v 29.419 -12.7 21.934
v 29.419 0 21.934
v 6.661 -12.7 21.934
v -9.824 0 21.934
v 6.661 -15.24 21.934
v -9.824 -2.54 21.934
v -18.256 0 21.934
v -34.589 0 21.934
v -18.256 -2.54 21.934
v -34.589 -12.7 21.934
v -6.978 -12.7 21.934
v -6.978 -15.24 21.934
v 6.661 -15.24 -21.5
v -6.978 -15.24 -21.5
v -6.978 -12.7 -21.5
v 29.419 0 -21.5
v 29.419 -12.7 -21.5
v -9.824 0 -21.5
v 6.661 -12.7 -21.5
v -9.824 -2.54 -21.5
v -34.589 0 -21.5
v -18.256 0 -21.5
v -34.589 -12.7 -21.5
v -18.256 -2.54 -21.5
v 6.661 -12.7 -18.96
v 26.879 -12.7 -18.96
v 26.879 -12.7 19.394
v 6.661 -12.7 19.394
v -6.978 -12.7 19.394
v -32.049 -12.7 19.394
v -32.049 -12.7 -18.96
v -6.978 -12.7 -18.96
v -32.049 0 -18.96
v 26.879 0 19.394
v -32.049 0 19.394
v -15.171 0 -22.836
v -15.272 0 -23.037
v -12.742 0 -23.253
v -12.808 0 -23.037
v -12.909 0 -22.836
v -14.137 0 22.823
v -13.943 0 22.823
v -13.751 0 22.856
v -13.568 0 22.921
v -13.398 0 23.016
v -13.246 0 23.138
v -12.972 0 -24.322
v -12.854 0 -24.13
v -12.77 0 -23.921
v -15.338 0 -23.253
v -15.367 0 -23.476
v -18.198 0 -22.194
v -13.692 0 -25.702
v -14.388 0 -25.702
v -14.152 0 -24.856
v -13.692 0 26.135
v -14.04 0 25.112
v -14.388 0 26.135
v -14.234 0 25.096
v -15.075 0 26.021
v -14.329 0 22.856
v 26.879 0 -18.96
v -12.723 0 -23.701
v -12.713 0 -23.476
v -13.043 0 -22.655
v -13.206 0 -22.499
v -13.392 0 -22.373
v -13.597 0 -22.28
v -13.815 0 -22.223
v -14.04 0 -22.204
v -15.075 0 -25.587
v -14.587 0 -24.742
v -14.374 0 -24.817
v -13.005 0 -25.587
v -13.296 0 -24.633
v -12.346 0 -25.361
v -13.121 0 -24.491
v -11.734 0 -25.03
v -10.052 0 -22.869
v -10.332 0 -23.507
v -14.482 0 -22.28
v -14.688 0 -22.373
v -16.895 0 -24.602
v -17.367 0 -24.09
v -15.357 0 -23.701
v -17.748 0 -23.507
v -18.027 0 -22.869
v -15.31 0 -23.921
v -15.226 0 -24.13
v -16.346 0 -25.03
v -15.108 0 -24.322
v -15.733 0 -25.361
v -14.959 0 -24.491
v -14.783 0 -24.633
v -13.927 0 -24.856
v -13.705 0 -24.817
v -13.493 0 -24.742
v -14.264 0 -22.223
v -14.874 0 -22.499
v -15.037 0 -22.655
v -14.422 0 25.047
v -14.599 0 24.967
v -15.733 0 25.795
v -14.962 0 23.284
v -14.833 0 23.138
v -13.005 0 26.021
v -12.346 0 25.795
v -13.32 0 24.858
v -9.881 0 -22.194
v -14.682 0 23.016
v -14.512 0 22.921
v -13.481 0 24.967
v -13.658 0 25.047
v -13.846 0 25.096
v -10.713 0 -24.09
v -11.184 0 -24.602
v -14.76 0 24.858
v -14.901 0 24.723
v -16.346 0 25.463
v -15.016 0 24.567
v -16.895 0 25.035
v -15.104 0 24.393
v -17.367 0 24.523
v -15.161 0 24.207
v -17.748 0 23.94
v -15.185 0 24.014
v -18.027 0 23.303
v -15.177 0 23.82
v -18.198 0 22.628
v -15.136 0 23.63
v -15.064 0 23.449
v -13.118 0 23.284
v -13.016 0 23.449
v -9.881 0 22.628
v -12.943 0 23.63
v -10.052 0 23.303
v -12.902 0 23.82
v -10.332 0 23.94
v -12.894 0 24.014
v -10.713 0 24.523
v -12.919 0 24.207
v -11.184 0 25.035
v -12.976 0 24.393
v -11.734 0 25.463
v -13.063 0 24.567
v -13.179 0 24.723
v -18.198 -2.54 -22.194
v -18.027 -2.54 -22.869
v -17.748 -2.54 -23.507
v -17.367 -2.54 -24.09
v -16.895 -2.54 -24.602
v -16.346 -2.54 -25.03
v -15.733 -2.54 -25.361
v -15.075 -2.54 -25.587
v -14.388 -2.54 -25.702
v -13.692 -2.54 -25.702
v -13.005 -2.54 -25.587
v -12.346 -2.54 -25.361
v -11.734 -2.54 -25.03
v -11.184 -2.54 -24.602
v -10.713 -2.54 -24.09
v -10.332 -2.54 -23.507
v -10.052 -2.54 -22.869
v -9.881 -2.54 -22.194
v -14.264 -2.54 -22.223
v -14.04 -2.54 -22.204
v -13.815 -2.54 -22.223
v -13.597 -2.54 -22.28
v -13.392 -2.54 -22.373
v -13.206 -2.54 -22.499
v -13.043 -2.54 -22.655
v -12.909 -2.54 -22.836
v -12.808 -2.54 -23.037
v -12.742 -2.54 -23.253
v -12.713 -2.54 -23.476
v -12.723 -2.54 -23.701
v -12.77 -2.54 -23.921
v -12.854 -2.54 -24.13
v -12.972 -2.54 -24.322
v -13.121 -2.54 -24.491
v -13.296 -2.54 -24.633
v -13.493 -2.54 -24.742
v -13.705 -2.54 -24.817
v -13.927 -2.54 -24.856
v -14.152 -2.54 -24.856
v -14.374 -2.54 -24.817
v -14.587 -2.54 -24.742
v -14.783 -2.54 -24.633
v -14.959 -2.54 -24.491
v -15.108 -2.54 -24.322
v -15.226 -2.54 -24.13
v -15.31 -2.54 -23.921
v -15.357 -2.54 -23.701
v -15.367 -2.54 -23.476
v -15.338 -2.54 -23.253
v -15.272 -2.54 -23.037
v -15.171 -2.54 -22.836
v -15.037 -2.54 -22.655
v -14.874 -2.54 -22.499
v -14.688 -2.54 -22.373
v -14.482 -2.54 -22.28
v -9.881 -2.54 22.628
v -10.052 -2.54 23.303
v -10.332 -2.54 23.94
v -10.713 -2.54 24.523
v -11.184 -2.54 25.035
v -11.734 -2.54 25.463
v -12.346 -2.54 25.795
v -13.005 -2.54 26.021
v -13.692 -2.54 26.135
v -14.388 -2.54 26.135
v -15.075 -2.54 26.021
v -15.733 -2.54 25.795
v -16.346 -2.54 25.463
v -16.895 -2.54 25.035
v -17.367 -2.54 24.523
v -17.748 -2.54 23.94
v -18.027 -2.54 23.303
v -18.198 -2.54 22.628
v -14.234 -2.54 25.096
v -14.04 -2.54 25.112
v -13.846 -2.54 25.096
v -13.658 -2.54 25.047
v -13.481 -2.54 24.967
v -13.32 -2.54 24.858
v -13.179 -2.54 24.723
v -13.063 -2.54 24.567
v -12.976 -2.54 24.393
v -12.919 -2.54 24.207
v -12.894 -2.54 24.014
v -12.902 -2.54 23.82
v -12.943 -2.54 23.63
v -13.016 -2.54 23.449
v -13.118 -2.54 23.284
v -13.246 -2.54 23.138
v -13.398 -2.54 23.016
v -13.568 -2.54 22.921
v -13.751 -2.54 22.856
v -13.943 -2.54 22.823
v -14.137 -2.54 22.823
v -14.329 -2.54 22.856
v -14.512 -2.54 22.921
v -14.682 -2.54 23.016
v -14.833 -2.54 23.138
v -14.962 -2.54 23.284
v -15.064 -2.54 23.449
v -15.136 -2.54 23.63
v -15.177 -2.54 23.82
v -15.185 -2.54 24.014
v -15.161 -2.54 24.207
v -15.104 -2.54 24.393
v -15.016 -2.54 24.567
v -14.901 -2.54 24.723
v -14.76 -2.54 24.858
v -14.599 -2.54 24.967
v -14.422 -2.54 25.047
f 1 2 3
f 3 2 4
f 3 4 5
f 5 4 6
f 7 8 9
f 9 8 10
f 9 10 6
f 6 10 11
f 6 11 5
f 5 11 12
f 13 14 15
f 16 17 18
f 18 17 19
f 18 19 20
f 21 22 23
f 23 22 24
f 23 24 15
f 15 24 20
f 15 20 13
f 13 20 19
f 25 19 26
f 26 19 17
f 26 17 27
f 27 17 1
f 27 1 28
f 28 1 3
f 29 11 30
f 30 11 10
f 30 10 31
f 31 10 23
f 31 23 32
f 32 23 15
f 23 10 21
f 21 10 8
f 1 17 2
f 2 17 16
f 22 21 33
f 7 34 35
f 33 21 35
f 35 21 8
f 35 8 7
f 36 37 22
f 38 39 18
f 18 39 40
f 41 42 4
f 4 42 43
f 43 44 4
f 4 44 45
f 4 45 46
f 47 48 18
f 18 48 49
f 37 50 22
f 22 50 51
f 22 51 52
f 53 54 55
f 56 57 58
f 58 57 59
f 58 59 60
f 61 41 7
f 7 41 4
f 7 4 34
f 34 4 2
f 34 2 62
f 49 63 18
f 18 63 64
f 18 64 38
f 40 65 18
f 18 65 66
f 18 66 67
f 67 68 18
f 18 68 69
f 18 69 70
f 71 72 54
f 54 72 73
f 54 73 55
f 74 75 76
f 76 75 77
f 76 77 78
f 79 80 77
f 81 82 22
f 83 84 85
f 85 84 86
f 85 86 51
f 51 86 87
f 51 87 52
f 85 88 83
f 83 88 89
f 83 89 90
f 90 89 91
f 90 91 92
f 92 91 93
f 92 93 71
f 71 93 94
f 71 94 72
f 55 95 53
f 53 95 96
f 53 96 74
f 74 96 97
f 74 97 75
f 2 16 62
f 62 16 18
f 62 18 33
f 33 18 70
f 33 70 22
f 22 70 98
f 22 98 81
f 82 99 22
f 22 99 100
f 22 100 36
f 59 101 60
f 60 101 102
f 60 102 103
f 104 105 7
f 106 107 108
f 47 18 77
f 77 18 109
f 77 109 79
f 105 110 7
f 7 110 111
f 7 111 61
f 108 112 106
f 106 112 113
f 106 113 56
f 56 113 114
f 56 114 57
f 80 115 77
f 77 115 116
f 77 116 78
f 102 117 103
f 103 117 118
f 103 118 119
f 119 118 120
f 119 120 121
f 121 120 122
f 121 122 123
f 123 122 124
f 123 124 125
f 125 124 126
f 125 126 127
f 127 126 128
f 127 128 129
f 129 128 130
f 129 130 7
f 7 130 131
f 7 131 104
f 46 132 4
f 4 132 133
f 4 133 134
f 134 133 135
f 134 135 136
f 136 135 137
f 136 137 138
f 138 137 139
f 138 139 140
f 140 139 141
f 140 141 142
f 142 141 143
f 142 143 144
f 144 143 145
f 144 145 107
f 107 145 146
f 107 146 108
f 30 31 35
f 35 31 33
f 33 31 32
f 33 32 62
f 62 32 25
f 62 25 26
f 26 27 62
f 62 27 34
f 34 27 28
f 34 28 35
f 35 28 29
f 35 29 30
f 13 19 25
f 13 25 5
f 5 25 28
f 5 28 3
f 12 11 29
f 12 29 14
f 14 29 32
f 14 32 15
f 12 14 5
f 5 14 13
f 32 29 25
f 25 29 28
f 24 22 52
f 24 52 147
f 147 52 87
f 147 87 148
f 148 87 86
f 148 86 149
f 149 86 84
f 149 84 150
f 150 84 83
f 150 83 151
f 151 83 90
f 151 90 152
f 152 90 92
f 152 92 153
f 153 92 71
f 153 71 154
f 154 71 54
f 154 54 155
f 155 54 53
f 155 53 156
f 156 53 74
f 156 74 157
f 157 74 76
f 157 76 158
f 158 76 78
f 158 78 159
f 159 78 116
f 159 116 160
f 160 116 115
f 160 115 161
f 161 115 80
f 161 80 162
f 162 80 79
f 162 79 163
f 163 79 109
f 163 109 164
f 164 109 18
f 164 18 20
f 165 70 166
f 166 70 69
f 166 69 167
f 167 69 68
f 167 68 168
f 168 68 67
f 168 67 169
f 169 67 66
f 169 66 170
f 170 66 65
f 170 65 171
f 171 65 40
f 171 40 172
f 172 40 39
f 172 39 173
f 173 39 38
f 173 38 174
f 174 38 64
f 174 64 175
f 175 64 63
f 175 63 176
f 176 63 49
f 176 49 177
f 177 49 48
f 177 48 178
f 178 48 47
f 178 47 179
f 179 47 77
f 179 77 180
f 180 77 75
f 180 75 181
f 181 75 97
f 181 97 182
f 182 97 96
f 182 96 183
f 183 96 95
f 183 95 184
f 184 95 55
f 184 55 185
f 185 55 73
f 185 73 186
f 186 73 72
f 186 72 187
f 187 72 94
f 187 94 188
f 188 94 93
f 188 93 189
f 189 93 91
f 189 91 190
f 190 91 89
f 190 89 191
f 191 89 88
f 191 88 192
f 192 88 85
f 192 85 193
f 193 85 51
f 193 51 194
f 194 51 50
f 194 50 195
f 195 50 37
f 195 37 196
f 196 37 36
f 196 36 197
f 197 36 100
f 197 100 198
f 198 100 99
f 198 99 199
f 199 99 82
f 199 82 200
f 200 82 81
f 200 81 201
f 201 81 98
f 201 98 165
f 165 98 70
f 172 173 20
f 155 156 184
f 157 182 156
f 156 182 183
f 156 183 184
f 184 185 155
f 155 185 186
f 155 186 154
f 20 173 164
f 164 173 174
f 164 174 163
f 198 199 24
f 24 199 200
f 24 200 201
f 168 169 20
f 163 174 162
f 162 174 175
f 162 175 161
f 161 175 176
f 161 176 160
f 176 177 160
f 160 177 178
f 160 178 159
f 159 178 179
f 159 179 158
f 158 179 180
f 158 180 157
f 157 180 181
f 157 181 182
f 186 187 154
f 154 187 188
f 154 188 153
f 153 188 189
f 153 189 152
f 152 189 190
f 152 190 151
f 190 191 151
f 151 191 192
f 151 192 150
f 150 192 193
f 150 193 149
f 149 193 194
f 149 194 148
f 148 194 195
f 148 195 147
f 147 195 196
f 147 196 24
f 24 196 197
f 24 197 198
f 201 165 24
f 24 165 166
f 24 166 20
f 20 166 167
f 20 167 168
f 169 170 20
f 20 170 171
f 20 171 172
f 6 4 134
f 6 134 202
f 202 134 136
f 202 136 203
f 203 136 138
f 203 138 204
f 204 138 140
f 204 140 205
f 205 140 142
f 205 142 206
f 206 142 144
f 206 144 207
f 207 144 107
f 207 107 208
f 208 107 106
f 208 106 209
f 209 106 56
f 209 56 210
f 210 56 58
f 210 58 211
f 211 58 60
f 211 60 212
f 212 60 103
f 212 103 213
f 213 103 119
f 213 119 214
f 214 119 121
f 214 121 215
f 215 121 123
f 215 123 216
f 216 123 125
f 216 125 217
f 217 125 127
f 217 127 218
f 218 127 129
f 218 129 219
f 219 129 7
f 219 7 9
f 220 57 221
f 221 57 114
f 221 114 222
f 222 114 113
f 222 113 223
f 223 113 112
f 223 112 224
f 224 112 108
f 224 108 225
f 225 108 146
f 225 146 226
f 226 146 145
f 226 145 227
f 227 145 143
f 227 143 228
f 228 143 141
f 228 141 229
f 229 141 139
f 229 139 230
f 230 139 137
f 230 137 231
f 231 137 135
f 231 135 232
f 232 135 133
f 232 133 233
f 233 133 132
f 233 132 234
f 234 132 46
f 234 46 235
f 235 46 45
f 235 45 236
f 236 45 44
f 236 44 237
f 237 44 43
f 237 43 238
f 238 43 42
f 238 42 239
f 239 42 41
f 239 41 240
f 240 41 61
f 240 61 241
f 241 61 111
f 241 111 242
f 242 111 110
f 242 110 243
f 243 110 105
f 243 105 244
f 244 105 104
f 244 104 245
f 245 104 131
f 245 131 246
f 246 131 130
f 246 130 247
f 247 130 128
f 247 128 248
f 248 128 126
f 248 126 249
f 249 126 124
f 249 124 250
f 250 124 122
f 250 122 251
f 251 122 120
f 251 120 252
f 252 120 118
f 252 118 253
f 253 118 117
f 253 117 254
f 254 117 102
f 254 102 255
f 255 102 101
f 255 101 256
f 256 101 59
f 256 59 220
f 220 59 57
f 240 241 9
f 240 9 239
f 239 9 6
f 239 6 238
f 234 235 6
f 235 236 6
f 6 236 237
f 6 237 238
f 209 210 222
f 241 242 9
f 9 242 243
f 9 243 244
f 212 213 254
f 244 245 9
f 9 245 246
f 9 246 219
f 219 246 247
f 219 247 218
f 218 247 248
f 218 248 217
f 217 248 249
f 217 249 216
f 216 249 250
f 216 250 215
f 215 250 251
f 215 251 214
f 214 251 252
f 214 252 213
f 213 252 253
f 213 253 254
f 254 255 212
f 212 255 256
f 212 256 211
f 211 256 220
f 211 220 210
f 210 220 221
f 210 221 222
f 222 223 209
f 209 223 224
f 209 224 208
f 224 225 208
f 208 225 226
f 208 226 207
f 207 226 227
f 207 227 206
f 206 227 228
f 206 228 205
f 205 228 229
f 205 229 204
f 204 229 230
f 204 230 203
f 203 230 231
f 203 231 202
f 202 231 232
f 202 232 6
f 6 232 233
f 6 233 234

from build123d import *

# Parameters (mm, degrees)
SKETCH1_W           = 64.008
SKETCH1_H           = 43.434
SKETCH1_W_2         = 58.928
SKETCH1_H_2         = 38.354
BOSS_EXTRUDE1_DEPTH = 12.7
SKETCH2_W           = 13.638305883
SKETCH2_H           = 43.434
BOSS_EXTRUDE2_DEPTH = 2.54
SKETCH3_R           = 1.327962253
SKETCH3_R_2         = 1.146659907
BOSS_EXTRUDE3_DEPTH = 2.54


with BuildPart() as part:
    # Sketch1 → Boss-Extrude1 (new body)
    with BuildSketch(Plane(origin=(0, 0, 0), x_dir=(1, 0, 0), z_dir=(0, 1, 0))):
        with Locations((-2.584823529, -0.216647059)):
            Rectangle(SKETCH1_W, SKETCH1_H)
        with Locations((-2.584823529, -0.216647059)):
            Rectangle(SKETCH1_W_2, SKETCH1_H_2, mode=Mode.SUBTRACT)
    extrude(amount=-BOSS_EXTRUDE1_DEPTH)

    # Sketch2 → Boss-Extrude2 (add)
    with BuildSketch(Plane.XZ.offset(12.7)):
        with Locations((-0.158376471, 0.216647059)):
            Rectangle(SKETCH2_W, SKETCH2_H)
    extrude(amount=BOSS_EXTRUDE2_DEPTH)

    # Sketch3 → Boss-Extrude3 (add)
    # profile 1 of 2: a face of its own
    with BuildSketch(Plane(origin=(0, 0, 0), x_dir=(1, 0, 0), z_dir=(0, 1, 0))):
        with BuildLine():
            ThreePointArc((-9.823823529, 21.500352941), (-14.039870548, 25.716399959), (-18.255917566, 21.500352941))
            Line((-18.255917566, 21.500352941), (-9.823823529, 21.500352941))
        make_face()
        with Locations(Location((-14.039870548, 23.532352941, 0), (0, 0, 270))):
            Circle(SKETCH3_R, mode=Mode.SUBTRACT)
    # profile 2 of 2: a face of its own
    with BuildSketch(Plane(origin=(0, 0, 0), x_dir=(1, 0, 0), z_dir=(0, 1, 0))):
        with BuildLine():
            ThreePointArc((-18.255917566, -21.933647059), (-14.039870548, -26.149694077), (-9.823823529, -21.933647059))
            Line((-9.823823529, -21.933647059), (-18.255917566, -21.933647059))
        make_face()
        with Locations(Location((-14.039870548, -23.965647059, 0), (0, 0, 270))):
            Circle(SKETCH3_R_2, mode=Mode.SUBTRACT)
    extrude(amount=-BOSS_EXTRUDE3_DEPTH)


solid = part.part
